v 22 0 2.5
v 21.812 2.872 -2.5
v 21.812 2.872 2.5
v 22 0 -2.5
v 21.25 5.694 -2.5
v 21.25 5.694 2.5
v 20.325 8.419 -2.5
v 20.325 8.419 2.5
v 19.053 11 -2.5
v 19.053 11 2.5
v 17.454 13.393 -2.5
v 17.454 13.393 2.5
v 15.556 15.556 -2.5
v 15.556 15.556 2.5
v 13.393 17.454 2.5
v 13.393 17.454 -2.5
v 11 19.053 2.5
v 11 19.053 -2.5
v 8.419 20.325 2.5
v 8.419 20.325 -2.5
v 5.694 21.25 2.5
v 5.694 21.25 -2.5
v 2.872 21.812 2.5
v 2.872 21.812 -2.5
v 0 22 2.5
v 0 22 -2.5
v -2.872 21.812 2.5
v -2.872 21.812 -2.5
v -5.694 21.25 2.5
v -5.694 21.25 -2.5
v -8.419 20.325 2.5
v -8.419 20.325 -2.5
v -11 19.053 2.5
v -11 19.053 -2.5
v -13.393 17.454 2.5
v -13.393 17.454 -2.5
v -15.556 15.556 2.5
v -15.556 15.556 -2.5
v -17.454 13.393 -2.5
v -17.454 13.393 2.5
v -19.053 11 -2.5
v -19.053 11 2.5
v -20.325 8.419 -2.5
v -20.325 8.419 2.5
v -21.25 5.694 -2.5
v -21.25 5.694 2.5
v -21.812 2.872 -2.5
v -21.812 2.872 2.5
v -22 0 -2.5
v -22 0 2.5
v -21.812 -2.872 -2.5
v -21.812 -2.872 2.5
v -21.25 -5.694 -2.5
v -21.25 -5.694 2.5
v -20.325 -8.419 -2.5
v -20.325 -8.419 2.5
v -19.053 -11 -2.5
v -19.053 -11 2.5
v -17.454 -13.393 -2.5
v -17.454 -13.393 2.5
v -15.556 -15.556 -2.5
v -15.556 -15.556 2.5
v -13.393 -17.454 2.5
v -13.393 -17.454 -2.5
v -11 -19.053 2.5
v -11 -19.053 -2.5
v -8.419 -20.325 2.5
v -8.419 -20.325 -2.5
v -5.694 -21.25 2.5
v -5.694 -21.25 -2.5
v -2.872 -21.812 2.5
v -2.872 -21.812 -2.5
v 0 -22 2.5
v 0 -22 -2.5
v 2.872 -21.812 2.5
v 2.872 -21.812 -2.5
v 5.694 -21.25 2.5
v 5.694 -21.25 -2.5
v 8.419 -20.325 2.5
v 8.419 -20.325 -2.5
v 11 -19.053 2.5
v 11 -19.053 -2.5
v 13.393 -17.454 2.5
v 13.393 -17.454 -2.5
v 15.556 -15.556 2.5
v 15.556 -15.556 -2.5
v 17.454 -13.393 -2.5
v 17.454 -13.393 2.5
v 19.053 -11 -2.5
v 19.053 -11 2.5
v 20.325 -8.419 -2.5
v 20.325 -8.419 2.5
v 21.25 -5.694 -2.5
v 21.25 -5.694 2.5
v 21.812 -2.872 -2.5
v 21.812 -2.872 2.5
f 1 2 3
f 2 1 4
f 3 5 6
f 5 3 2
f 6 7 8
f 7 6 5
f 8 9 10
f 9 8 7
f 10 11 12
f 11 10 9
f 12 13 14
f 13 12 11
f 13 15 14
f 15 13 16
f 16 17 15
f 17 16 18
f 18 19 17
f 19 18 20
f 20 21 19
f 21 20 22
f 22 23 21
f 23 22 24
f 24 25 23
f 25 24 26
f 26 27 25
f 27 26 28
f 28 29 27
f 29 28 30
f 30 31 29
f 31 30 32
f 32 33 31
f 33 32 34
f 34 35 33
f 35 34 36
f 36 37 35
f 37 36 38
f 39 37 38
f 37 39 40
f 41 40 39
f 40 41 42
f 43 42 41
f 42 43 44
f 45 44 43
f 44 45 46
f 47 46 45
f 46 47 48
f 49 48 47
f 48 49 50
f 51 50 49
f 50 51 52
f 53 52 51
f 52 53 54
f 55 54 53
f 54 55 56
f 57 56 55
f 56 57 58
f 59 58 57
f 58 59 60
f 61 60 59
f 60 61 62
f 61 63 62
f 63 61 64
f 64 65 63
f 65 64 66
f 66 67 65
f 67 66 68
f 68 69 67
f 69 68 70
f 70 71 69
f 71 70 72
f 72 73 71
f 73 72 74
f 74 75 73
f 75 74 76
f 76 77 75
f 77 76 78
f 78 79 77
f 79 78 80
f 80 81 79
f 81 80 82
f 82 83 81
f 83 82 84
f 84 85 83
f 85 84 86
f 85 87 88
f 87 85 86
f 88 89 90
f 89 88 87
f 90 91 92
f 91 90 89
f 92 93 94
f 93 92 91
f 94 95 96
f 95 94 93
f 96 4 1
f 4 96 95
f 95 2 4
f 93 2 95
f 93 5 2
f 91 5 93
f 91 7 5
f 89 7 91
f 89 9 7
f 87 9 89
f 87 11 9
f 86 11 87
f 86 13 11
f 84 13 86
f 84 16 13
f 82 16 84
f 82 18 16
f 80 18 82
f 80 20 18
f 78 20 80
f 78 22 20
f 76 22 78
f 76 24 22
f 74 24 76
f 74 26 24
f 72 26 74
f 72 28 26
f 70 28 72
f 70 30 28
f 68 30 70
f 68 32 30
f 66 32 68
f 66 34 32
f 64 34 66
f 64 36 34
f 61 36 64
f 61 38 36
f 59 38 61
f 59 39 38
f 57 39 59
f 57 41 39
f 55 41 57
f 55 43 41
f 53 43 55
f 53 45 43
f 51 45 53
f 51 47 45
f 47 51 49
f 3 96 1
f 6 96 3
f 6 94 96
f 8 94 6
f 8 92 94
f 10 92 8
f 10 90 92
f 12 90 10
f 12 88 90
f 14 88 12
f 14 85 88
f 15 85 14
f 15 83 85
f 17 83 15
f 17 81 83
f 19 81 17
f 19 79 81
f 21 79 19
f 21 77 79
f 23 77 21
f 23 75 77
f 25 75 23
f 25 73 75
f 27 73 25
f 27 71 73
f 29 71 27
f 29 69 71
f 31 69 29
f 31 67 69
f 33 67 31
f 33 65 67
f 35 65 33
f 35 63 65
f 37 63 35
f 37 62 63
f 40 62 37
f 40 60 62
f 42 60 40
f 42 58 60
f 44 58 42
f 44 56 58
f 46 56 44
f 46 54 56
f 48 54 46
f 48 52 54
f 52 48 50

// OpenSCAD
// ========================================
// a cylinder with radius 22 mm and height 5 mm
// NeuroCAD canonical IR; dimensions are millimetres
// ========================================
$fn = 48;

cylinder(r=22, h=5, center=true);
